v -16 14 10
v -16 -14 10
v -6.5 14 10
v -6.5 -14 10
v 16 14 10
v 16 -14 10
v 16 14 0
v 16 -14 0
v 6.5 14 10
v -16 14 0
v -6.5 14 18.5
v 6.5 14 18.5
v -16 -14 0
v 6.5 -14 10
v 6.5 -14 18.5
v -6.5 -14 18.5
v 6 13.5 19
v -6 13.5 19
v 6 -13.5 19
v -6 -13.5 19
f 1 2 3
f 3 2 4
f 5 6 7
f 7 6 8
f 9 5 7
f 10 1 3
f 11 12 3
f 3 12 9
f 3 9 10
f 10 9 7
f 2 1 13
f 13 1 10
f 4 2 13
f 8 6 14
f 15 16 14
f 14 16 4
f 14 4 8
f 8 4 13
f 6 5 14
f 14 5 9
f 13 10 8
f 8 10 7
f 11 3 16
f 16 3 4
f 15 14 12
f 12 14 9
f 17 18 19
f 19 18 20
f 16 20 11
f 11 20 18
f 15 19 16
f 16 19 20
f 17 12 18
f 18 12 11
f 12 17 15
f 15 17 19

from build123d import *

# Parameters (mm, degrees)
SKETCH_5_W      = 32
SKETCH_5_H      = 28
EXTRUDE_5_DEPTH = 10
EXTRUDE_6_DEPTH = 9
CHAMFER_4_SIZE  = 0.5


with BuildPart() as part:
    # 草图5 → 凸台-拉伸5 (new body)
    with BuildSketch(Plane.XY):
        Rectangle(SKETCH_5_W, SKETCH_5_H)
    extrude(amount=EXTRUDE_5_DEPTH)

    # 草图6 → 凸台-拉伸6 (add)
    with BuildSketch(Plane.XY.offset(10)):
        Polygon((0, 14), (6.5, 14), (6.5, -14), (-6.5, -14), (-6.5, 14), align=None)
    extrude(amount=EXTRUDE_6_DEPTH)

    # 倒角4
    chamfer_4_edges = [part.edges().sort_by_distance(p)[0] for p in [
        (0, 14, 19),
        (-6.5, 0, 19),
        (0, -14, 19),
        (6.5, 0, 19),
    ]]
    chamfer(chamfer_4_edges, length=CHAMFER_4_SIZE)


solid = part.part
